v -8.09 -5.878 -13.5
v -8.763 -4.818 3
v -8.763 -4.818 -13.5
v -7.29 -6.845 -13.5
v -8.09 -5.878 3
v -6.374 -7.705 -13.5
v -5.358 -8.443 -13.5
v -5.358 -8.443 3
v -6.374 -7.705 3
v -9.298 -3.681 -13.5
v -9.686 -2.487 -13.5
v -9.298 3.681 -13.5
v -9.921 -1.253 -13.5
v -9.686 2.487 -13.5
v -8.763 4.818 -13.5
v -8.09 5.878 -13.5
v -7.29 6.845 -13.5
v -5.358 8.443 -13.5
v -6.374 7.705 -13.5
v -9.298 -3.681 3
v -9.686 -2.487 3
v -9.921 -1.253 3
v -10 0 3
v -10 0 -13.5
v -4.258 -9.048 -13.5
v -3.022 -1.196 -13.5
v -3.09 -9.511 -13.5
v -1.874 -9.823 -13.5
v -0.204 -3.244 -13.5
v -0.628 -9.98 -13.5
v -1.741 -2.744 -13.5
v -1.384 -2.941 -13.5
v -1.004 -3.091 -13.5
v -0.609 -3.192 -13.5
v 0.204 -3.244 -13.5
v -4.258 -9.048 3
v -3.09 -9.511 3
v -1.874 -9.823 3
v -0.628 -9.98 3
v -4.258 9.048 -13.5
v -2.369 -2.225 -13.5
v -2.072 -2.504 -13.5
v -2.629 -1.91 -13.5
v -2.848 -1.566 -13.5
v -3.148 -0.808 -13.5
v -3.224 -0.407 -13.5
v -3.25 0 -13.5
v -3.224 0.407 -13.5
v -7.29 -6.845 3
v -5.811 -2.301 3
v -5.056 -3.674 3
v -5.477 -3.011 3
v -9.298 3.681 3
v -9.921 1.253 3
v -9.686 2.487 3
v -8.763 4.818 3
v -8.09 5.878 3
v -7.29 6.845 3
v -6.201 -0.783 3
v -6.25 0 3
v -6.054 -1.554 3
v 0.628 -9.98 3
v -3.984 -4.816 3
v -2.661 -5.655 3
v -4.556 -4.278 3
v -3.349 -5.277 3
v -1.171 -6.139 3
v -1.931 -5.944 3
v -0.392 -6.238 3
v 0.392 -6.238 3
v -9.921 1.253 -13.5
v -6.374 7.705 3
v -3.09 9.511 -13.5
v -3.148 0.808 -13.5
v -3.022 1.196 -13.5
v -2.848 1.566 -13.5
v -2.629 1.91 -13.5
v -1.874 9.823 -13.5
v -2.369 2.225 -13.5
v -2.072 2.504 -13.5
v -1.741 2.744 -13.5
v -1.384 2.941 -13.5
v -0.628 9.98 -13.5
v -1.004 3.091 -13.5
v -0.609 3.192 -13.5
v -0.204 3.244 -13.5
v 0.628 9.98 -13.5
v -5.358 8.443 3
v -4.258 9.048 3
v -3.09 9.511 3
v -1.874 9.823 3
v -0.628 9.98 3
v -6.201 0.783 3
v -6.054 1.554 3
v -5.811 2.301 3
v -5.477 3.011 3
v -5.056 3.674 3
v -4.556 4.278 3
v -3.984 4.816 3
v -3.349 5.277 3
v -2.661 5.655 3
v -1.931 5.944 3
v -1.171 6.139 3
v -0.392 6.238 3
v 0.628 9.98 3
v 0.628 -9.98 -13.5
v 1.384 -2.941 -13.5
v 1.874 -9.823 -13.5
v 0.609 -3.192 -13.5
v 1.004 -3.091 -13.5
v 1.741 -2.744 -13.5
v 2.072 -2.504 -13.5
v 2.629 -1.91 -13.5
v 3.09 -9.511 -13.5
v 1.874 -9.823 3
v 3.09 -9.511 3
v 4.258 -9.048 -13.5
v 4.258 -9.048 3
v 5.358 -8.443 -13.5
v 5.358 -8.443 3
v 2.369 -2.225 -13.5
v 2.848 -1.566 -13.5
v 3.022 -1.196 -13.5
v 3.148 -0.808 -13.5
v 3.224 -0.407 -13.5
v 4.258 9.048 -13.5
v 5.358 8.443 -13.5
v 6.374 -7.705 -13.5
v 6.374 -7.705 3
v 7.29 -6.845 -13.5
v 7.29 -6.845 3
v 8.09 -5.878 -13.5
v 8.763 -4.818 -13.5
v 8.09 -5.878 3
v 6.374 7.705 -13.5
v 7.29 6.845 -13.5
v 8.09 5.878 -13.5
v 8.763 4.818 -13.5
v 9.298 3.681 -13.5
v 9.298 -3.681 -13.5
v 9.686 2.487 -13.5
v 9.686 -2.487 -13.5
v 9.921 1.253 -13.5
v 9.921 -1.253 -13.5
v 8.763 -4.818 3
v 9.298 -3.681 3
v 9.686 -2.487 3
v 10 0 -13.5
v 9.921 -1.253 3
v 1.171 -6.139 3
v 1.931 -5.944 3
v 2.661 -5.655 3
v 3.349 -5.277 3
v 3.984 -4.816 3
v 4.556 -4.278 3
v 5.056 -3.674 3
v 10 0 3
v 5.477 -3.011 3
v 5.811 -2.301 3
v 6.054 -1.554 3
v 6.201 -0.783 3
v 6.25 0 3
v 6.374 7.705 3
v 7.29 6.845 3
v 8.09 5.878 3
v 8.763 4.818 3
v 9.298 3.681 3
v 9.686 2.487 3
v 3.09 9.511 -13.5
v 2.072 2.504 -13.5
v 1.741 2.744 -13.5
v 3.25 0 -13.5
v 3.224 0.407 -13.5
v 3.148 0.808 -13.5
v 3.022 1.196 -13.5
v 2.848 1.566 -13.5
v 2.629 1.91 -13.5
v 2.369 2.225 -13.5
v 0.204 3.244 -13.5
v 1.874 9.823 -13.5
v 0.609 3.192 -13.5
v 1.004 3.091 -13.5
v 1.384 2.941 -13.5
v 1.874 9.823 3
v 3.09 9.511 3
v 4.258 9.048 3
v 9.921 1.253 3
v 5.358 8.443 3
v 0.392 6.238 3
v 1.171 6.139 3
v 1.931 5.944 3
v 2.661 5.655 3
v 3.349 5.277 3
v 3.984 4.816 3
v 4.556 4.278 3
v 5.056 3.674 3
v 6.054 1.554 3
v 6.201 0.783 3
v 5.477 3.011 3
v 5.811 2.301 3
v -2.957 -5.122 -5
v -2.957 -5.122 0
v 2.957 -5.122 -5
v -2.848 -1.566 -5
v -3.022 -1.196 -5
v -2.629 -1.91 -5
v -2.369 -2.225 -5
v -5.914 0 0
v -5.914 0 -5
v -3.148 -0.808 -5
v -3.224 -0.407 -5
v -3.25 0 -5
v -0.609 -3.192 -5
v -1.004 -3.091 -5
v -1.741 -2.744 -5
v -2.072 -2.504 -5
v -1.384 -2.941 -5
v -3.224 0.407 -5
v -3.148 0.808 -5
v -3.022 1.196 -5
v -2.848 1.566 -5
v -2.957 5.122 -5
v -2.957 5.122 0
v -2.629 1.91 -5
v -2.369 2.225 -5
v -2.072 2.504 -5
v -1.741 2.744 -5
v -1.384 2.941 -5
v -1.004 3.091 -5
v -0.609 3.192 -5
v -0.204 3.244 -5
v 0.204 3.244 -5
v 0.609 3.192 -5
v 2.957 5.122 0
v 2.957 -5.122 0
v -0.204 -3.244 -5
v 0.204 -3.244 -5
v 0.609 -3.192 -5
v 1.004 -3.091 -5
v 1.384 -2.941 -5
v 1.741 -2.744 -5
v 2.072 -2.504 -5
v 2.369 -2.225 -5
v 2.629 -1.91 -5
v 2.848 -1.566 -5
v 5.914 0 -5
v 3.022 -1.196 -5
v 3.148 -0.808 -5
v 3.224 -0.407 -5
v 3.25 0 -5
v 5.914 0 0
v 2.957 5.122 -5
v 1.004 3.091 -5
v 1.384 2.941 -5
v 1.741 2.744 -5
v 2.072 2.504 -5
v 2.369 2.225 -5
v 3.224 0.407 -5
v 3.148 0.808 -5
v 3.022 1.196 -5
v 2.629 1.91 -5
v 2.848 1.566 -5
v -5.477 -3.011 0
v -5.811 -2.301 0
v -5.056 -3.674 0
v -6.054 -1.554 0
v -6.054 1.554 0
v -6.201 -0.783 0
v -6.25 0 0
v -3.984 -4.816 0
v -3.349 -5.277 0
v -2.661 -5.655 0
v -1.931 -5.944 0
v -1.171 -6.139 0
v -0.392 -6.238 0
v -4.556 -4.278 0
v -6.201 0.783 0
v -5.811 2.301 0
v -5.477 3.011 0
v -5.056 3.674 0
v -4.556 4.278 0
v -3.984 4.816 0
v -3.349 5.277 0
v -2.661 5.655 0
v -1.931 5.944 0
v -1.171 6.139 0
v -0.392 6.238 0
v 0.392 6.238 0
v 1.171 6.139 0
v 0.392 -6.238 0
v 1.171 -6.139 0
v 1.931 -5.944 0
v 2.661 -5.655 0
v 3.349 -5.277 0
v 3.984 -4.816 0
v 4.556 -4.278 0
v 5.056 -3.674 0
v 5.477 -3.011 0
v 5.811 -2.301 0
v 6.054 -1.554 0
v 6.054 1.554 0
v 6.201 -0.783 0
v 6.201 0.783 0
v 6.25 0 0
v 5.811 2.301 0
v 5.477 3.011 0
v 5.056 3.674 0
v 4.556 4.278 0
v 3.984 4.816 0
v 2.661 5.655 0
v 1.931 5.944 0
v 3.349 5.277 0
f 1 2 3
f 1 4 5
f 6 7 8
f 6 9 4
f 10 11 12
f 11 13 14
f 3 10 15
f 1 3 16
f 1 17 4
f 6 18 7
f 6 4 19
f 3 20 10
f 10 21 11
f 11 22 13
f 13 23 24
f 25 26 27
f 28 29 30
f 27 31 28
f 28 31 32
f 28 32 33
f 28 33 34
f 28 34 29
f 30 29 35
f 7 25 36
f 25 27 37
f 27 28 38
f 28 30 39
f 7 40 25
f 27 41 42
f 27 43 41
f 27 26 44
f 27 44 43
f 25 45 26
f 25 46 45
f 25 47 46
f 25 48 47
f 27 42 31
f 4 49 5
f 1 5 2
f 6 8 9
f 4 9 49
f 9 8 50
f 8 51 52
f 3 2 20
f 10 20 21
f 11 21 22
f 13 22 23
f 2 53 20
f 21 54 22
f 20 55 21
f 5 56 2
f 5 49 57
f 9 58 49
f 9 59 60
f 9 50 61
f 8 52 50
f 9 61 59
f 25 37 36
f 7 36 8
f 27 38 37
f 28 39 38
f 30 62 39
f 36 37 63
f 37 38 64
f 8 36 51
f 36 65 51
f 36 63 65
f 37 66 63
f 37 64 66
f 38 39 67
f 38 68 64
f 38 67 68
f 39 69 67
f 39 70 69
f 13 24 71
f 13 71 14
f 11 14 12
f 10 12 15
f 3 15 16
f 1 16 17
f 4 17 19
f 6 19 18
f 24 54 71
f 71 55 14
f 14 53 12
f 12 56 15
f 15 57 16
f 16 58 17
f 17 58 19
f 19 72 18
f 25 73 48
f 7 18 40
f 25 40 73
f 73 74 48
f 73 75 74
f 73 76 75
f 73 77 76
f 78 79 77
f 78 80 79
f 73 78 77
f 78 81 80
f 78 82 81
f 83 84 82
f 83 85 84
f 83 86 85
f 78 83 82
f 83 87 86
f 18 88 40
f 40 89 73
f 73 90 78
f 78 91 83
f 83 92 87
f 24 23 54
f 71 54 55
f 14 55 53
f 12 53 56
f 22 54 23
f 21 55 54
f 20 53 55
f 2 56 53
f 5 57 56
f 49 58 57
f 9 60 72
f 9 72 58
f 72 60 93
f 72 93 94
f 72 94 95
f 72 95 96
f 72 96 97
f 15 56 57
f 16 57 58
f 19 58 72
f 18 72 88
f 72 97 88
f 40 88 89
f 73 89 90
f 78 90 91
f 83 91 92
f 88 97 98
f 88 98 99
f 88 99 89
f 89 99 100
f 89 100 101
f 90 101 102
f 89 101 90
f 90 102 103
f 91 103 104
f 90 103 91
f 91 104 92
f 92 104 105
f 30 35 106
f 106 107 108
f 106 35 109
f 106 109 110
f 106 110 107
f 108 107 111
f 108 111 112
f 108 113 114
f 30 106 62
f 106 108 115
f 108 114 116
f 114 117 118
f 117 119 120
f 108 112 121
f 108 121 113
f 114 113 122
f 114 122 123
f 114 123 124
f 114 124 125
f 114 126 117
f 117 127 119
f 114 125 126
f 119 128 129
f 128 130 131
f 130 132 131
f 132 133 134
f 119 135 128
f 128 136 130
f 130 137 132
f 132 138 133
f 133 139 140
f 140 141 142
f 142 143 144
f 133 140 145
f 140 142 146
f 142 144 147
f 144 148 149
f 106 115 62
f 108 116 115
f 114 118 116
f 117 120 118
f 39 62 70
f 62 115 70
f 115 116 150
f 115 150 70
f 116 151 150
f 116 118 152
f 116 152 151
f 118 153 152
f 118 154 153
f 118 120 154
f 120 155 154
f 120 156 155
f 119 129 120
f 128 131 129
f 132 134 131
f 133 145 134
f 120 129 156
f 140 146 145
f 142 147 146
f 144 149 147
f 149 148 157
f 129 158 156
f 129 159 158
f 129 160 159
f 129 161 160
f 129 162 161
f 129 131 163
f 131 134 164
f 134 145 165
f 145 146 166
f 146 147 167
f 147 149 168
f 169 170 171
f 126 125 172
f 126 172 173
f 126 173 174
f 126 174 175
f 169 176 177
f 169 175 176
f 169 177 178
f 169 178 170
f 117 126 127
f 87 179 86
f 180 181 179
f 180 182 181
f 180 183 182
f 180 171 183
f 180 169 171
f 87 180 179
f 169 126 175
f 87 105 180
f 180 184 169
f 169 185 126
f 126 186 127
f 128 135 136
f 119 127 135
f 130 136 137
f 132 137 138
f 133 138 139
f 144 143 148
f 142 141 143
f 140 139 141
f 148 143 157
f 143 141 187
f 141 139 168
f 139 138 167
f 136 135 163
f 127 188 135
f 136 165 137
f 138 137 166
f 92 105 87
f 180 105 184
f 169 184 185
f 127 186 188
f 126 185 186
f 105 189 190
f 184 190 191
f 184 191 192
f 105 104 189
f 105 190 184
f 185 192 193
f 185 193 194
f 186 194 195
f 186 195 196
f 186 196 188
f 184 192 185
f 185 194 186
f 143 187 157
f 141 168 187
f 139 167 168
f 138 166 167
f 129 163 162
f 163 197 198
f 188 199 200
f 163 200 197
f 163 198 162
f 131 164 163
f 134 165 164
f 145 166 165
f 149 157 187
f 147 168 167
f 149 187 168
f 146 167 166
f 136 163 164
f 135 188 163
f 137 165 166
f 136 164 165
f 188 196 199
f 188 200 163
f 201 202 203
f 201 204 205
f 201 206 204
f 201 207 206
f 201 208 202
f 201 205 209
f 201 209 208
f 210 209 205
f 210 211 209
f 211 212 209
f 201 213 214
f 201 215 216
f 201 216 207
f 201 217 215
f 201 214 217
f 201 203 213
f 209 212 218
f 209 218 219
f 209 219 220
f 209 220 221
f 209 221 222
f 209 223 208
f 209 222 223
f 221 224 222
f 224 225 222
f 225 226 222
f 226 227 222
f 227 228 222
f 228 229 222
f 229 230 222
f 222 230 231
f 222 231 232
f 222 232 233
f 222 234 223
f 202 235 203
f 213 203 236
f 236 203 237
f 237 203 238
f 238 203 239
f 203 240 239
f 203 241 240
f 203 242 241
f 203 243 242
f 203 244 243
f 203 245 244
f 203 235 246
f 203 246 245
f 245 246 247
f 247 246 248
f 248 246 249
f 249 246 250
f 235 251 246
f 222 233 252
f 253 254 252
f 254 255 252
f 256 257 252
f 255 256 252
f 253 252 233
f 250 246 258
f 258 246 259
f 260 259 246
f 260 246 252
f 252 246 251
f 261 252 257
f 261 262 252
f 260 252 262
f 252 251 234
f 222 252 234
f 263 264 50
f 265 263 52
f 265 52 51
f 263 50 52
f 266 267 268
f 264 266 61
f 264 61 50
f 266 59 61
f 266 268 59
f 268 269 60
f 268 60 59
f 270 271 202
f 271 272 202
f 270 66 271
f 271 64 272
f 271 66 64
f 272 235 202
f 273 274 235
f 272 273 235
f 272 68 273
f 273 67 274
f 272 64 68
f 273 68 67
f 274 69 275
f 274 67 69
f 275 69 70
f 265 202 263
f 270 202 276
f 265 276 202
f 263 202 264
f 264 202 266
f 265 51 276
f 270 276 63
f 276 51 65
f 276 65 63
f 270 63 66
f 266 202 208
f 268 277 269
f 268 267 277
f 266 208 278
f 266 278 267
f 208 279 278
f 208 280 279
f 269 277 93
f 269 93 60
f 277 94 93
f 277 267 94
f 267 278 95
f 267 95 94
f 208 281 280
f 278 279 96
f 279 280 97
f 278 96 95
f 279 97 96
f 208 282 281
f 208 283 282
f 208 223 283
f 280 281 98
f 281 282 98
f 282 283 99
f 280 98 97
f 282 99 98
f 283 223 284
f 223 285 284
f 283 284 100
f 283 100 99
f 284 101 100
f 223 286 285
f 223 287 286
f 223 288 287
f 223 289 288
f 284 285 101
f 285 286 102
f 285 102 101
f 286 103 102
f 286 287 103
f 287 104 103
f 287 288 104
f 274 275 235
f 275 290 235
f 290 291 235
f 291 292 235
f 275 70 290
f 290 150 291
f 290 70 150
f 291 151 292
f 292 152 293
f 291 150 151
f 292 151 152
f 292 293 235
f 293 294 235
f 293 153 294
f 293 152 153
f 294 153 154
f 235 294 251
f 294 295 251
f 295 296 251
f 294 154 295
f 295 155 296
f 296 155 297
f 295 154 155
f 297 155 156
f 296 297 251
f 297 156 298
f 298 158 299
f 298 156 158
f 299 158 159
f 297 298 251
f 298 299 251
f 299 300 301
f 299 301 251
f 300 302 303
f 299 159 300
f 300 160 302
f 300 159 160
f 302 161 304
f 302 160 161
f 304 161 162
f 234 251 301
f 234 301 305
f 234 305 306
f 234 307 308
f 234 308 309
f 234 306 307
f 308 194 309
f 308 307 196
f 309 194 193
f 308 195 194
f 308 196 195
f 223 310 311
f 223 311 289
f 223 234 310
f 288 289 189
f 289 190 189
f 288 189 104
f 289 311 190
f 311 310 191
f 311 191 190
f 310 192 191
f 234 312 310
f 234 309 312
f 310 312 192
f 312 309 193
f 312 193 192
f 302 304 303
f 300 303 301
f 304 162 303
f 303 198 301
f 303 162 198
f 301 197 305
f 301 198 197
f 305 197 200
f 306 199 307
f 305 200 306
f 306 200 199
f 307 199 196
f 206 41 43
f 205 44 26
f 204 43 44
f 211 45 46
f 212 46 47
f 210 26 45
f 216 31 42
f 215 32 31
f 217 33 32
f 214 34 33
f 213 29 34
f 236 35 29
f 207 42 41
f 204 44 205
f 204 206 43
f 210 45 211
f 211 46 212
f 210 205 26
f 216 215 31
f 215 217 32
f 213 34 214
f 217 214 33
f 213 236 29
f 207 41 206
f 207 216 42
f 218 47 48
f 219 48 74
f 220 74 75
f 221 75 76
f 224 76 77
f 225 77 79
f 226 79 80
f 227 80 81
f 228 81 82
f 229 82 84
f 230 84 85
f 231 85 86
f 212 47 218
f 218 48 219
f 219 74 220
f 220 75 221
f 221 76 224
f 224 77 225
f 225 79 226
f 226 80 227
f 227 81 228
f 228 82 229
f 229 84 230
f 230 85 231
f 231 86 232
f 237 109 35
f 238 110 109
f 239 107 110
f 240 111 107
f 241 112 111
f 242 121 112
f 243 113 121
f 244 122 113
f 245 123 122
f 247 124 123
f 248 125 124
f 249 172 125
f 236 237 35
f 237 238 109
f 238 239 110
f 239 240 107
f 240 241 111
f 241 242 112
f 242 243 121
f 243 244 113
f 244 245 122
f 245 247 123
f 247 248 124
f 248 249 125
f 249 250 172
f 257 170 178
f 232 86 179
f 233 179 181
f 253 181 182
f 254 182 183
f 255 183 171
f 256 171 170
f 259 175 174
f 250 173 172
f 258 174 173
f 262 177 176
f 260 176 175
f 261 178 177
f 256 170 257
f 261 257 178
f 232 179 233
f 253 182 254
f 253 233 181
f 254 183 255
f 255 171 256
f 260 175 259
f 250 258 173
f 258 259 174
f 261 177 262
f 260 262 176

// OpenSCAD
$fn = 50;

difference() {
	union() {
		translate(v = [0, 0, -13.5]) {
			cylinder(h = 16.5, r = 10.0);
		}
		#translate(v = [0, 0, -15.0]) {
			cylinder(h = 15, r = 2.875);
		}
	}
	union() {
		translate(v = [0, 0, 0]) {
			rotate(a = [0, 0, 0]) {
				difference() {
					union() {
						translate(v = [0, 0, -5]) {
							linear_extrude(height = 5) {
								polygon(points = [[5.914249999999999, 0.0], [2.957125, 5.1218907443321156], [-2.9571249999999982, 5.1218907443321156], [-5.914249999999999, 7.242867331857232e-16], [-2.9571250000000022, -5.121890744332115], [2.9571249999999956, -5.121890744332118]]);
							}
						}
					}
					union();
				}
			}
		}
		#cylinder(h = 3, r = 6.25);
		#translate(v = [0, 0, -100.0]) {
			cylinder(h = 200, r = 3.25);
		}
	}
}
